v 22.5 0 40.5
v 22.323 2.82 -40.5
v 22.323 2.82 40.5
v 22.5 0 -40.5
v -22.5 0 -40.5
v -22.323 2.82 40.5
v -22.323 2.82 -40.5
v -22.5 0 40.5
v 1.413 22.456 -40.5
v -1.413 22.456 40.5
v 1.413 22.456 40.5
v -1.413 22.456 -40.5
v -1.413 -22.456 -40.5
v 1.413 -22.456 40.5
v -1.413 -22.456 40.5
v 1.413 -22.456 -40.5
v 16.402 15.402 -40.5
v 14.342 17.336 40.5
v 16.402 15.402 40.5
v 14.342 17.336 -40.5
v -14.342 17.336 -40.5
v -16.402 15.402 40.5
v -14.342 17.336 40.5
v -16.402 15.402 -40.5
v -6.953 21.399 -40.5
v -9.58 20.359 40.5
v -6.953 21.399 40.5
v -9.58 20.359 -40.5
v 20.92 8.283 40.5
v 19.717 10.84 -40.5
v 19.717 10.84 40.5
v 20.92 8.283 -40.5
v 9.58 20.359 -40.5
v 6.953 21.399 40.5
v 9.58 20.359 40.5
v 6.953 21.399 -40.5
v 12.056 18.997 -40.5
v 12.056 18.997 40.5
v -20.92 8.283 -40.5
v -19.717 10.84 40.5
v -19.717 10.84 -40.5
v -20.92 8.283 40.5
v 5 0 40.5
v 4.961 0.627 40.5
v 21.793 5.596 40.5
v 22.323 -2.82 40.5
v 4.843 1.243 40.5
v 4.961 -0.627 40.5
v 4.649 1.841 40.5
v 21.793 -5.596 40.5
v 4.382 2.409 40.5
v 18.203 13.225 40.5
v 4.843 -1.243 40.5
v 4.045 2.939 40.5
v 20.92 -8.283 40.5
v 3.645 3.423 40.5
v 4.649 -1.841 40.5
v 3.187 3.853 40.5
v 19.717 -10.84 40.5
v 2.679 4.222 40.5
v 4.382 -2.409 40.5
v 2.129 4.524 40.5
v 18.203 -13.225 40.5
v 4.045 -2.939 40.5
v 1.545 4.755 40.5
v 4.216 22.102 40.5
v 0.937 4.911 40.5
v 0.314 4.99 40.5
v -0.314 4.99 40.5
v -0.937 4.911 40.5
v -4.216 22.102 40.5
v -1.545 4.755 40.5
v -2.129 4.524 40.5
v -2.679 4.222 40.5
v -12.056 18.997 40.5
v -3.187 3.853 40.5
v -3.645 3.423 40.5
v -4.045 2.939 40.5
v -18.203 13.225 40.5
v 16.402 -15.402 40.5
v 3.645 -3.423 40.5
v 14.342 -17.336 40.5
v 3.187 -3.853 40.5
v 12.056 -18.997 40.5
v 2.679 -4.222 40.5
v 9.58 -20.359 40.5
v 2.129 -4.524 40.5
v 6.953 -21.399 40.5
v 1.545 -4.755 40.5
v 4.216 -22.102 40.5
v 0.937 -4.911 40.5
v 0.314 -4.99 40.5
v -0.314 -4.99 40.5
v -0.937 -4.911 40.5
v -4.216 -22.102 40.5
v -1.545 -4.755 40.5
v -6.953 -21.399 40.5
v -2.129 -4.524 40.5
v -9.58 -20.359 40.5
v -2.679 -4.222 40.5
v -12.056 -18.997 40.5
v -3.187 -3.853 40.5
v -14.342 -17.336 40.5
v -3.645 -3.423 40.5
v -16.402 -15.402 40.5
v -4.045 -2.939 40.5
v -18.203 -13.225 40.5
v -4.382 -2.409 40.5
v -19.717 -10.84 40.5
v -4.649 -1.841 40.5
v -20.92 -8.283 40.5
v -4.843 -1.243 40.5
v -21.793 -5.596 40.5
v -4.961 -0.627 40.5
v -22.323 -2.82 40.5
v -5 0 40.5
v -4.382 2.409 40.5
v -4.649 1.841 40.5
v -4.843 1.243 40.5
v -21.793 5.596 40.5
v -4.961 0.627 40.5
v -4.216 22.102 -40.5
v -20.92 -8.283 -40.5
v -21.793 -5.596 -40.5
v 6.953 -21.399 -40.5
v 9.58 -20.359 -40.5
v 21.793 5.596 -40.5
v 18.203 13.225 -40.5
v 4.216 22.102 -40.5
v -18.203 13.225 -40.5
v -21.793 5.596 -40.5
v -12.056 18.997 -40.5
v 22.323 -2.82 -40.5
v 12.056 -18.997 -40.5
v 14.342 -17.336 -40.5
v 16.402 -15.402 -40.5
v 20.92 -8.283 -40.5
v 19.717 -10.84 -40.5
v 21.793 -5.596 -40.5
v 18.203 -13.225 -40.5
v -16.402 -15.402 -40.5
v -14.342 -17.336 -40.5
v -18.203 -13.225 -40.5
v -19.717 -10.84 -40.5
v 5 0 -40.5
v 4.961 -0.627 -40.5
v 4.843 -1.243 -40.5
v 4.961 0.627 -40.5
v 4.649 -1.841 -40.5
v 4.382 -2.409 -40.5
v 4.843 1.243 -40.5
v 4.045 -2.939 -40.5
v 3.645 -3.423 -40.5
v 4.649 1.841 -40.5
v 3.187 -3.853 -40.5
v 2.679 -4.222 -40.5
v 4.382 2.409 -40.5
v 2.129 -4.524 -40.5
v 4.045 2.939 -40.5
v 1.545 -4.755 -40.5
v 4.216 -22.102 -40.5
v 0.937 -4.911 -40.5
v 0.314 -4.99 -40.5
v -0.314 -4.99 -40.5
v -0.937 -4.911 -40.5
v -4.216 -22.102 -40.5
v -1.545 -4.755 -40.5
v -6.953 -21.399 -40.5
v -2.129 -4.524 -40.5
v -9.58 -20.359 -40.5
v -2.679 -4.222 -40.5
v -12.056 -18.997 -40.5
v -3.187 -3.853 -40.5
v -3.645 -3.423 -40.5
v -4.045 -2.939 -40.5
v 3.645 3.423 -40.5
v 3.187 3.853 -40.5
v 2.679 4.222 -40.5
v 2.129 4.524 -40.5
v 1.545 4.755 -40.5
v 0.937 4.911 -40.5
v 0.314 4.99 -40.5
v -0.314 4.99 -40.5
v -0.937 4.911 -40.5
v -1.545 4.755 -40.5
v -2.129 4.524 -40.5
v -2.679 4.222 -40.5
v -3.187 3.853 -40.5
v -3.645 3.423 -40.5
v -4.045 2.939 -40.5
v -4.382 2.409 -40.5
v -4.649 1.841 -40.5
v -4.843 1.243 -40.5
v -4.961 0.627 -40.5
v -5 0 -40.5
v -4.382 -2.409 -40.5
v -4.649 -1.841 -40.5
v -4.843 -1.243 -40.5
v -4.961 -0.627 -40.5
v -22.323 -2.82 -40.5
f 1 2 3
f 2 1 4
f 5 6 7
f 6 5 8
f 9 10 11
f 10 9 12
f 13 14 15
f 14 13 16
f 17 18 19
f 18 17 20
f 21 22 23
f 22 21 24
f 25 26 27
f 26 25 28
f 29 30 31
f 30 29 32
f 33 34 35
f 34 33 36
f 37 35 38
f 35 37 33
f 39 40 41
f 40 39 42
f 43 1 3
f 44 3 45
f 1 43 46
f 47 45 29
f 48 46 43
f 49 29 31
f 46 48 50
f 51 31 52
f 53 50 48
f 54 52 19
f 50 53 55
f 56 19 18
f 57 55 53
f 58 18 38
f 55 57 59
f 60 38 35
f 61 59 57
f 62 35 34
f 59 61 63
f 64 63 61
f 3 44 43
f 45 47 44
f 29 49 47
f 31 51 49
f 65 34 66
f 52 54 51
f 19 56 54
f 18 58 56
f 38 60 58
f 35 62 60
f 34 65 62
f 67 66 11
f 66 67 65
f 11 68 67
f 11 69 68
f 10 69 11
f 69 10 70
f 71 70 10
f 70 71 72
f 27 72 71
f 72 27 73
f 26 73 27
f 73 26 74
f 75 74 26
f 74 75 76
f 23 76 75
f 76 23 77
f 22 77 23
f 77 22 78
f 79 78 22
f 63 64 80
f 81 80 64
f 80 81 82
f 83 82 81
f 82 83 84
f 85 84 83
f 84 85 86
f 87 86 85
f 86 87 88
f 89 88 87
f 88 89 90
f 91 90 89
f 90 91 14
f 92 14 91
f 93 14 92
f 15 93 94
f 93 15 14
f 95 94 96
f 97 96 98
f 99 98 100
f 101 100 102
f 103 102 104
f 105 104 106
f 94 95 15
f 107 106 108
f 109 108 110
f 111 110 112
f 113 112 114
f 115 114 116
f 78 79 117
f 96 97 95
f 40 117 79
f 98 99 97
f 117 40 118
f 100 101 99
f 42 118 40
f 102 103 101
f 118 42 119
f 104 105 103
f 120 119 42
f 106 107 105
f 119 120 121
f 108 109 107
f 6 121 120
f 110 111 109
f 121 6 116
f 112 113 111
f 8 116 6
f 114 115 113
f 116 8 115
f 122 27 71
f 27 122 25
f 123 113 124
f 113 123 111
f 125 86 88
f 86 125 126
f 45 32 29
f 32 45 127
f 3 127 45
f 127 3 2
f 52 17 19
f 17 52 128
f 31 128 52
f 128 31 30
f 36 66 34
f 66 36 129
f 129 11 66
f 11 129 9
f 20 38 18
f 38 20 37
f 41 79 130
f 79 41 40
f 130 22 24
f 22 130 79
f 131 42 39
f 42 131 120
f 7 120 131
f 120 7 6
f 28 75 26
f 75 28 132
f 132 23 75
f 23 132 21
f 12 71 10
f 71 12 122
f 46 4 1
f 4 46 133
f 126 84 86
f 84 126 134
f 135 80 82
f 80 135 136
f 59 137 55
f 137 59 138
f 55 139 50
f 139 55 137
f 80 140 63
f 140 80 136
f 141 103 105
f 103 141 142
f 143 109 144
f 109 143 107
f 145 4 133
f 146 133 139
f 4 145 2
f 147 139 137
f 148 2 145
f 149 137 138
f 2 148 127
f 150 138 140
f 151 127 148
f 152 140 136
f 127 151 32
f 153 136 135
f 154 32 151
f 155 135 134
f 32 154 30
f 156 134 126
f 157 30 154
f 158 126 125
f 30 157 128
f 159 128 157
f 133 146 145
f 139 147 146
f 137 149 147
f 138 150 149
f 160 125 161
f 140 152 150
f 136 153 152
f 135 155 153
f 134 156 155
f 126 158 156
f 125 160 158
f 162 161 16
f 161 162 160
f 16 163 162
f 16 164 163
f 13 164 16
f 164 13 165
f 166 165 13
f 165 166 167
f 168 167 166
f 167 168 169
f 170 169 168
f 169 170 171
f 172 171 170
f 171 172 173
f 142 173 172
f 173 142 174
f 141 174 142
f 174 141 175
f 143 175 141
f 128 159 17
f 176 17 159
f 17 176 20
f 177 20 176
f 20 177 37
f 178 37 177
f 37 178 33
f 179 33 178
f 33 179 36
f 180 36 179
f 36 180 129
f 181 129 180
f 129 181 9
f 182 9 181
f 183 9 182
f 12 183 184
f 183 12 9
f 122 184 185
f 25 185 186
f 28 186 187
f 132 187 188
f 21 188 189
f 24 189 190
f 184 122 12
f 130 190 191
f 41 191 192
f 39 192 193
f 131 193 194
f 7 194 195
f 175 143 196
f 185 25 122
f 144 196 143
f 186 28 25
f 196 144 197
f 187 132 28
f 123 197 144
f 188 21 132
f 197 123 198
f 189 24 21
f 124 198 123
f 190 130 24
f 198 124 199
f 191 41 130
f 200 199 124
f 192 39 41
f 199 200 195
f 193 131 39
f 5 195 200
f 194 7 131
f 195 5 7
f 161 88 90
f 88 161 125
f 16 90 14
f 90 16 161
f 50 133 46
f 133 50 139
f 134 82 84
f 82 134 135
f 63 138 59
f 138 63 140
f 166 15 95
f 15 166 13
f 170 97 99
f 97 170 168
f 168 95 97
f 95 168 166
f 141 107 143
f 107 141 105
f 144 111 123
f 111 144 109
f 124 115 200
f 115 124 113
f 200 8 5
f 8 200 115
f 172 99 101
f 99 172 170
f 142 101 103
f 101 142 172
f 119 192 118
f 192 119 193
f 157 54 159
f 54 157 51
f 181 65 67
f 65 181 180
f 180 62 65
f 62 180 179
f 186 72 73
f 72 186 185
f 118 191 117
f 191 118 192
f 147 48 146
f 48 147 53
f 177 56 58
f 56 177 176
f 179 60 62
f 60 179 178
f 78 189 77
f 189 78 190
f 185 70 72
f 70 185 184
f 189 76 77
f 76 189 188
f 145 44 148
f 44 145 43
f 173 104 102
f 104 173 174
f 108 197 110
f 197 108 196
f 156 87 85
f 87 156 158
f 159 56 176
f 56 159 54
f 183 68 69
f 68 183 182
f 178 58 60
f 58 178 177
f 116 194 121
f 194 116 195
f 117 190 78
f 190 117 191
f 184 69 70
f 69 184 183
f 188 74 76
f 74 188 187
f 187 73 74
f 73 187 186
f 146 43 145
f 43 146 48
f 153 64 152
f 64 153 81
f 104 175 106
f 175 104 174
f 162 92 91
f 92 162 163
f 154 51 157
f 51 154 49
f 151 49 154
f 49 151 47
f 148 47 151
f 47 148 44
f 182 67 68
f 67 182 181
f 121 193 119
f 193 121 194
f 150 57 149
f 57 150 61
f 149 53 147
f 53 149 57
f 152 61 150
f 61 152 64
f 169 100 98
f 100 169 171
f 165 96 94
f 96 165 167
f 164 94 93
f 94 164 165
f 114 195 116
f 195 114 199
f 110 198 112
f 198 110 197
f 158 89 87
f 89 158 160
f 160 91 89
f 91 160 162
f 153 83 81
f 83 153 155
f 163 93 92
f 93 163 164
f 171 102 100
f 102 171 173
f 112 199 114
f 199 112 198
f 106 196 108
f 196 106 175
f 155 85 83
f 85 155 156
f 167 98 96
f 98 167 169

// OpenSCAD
$fn = 50;


difference() {
	union() {
		translate(v = [0, 0, -40.5000000000]) {
			cylinder(h = 81, r = 22.5000000000);
		}
	}
	union() {
		translate(v = [0, 0, -100.0000000000]) {
			cylinder(h = 200, r = 5);
		}
	}
}
